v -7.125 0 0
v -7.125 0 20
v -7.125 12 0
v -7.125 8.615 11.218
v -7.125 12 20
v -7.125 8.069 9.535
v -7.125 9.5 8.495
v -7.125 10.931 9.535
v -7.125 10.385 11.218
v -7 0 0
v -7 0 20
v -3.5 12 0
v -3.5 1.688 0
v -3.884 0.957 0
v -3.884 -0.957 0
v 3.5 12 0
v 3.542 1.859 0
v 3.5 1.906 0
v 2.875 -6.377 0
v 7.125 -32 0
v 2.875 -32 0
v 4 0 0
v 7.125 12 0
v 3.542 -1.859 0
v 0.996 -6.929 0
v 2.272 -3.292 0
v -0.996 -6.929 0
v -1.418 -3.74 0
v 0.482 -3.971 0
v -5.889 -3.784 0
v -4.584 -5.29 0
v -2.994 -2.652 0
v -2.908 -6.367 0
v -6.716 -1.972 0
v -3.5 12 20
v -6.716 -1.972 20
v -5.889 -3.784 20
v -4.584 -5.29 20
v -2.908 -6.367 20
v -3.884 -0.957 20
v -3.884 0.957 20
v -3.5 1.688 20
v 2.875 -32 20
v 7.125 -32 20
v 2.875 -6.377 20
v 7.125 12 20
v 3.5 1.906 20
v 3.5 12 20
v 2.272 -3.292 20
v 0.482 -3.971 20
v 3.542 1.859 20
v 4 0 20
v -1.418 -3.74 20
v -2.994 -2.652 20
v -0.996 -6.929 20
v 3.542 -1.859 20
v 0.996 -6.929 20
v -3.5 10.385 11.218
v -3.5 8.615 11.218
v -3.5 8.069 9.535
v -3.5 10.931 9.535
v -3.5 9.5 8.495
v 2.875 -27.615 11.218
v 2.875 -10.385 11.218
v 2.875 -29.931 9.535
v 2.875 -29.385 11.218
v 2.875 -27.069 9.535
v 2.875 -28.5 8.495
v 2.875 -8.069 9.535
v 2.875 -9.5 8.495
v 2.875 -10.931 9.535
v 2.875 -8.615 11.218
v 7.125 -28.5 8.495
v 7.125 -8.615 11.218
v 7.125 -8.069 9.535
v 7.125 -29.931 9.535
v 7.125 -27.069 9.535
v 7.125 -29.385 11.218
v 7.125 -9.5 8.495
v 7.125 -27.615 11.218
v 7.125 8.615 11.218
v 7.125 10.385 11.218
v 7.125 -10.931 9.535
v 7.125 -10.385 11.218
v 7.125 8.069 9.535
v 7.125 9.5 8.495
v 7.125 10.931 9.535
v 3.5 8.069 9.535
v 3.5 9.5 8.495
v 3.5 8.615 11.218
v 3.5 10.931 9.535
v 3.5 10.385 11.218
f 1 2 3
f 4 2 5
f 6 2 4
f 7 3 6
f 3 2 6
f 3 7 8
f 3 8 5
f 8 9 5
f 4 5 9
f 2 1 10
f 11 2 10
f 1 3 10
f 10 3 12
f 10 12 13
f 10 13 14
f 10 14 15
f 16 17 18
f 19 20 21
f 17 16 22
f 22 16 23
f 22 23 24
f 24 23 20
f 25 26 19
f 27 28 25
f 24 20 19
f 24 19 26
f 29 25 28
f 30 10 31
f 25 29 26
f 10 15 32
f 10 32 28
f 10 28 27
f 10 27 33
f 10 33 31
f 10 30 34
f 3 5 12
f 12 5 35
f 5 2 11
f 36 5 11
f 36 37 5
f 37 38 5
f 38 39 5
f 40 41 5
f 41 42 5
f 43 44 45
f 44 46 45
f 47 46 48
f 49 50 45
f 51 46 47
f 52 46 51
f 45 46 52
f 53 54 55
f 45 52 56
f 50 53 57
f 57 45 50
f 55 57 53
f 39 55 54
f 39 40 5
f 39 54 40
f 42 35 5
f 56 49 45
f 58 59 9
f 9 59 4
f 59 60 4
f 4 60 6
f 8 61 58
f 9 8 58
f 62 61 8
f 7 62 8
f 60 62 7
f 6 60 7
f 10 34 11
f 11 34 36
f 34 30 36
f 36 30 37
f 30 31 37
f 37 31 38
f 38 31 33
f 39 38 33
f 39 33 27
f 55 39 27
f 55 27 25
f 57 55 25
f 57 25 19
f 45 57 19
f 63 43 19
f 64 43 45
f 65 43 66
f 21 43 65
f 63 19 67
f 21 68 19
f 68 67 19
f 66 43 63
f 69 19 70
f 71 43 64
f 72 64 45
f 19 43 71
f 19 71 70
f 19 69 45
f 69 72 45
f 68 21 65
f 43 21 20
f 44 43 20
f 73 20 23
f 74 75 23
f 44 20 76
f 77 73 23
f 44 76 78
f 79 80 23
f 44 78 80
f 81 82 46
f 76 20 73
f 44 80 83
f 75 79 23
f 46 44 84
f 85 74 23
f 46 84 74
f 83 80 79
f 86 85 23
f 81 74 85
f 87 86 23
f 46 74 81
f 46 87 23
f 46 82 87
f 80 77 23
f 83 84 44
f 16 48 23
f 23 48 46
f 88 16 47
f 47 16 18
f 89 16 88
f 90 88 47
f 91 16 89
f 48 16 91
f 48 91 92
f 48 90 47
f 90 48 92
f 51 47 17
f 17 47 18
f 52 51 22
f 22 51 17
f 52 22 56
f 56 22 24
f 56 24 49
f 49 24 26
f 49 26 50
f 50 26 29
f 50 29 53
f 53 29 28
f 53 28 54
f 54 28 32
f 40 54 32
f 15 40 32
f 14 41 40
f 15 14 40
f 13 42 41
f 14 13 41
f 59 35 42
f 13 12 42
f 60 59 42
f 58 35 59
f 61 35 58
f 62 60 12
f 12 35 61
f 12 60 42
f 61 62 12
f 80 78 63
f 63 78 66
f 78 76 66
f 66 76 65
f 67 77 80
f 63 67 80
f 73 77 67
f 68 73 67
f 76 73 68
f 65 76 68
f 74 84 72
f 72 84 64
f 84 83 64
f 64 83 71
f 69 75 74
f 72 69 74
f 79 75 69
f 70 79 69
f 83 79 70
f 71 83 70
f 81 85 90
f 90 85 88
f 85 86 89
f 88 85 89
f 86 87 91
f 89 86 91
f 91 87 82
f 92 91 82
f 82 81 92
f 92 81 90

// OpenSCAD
//resolution 1'
$fa=0.01;


render(convexity = 0.1) difference() {
	union() {
		cylinder(h=20, r=7);
		translate(v=[5,-10,10]) cube(size=[4.25,44,20], center=true);
		translate(v=[-5,6,10]) cube(size=[4.25,12,20], center=true);
	}
	translate(v=[0,0,-1]) cylinder(h=22, r=4);
	translate(v=[0,6,11]) cube(size=[7,13,24], center=true);


	translate(v=[-11,-28.5,10])  {
		rotate([0,90,0])	cylinder(h=22, r=1.505);
	}

	translate(v=[-11,9.5,10])  {
		rotate([0,90,0])	cylinder(h=22, r=1.505);
	}

	translate(v=[-11,-9.5,10])  {
		rotate([0,90,0])	cylinder(h=22, r=1.505);
	}

}
